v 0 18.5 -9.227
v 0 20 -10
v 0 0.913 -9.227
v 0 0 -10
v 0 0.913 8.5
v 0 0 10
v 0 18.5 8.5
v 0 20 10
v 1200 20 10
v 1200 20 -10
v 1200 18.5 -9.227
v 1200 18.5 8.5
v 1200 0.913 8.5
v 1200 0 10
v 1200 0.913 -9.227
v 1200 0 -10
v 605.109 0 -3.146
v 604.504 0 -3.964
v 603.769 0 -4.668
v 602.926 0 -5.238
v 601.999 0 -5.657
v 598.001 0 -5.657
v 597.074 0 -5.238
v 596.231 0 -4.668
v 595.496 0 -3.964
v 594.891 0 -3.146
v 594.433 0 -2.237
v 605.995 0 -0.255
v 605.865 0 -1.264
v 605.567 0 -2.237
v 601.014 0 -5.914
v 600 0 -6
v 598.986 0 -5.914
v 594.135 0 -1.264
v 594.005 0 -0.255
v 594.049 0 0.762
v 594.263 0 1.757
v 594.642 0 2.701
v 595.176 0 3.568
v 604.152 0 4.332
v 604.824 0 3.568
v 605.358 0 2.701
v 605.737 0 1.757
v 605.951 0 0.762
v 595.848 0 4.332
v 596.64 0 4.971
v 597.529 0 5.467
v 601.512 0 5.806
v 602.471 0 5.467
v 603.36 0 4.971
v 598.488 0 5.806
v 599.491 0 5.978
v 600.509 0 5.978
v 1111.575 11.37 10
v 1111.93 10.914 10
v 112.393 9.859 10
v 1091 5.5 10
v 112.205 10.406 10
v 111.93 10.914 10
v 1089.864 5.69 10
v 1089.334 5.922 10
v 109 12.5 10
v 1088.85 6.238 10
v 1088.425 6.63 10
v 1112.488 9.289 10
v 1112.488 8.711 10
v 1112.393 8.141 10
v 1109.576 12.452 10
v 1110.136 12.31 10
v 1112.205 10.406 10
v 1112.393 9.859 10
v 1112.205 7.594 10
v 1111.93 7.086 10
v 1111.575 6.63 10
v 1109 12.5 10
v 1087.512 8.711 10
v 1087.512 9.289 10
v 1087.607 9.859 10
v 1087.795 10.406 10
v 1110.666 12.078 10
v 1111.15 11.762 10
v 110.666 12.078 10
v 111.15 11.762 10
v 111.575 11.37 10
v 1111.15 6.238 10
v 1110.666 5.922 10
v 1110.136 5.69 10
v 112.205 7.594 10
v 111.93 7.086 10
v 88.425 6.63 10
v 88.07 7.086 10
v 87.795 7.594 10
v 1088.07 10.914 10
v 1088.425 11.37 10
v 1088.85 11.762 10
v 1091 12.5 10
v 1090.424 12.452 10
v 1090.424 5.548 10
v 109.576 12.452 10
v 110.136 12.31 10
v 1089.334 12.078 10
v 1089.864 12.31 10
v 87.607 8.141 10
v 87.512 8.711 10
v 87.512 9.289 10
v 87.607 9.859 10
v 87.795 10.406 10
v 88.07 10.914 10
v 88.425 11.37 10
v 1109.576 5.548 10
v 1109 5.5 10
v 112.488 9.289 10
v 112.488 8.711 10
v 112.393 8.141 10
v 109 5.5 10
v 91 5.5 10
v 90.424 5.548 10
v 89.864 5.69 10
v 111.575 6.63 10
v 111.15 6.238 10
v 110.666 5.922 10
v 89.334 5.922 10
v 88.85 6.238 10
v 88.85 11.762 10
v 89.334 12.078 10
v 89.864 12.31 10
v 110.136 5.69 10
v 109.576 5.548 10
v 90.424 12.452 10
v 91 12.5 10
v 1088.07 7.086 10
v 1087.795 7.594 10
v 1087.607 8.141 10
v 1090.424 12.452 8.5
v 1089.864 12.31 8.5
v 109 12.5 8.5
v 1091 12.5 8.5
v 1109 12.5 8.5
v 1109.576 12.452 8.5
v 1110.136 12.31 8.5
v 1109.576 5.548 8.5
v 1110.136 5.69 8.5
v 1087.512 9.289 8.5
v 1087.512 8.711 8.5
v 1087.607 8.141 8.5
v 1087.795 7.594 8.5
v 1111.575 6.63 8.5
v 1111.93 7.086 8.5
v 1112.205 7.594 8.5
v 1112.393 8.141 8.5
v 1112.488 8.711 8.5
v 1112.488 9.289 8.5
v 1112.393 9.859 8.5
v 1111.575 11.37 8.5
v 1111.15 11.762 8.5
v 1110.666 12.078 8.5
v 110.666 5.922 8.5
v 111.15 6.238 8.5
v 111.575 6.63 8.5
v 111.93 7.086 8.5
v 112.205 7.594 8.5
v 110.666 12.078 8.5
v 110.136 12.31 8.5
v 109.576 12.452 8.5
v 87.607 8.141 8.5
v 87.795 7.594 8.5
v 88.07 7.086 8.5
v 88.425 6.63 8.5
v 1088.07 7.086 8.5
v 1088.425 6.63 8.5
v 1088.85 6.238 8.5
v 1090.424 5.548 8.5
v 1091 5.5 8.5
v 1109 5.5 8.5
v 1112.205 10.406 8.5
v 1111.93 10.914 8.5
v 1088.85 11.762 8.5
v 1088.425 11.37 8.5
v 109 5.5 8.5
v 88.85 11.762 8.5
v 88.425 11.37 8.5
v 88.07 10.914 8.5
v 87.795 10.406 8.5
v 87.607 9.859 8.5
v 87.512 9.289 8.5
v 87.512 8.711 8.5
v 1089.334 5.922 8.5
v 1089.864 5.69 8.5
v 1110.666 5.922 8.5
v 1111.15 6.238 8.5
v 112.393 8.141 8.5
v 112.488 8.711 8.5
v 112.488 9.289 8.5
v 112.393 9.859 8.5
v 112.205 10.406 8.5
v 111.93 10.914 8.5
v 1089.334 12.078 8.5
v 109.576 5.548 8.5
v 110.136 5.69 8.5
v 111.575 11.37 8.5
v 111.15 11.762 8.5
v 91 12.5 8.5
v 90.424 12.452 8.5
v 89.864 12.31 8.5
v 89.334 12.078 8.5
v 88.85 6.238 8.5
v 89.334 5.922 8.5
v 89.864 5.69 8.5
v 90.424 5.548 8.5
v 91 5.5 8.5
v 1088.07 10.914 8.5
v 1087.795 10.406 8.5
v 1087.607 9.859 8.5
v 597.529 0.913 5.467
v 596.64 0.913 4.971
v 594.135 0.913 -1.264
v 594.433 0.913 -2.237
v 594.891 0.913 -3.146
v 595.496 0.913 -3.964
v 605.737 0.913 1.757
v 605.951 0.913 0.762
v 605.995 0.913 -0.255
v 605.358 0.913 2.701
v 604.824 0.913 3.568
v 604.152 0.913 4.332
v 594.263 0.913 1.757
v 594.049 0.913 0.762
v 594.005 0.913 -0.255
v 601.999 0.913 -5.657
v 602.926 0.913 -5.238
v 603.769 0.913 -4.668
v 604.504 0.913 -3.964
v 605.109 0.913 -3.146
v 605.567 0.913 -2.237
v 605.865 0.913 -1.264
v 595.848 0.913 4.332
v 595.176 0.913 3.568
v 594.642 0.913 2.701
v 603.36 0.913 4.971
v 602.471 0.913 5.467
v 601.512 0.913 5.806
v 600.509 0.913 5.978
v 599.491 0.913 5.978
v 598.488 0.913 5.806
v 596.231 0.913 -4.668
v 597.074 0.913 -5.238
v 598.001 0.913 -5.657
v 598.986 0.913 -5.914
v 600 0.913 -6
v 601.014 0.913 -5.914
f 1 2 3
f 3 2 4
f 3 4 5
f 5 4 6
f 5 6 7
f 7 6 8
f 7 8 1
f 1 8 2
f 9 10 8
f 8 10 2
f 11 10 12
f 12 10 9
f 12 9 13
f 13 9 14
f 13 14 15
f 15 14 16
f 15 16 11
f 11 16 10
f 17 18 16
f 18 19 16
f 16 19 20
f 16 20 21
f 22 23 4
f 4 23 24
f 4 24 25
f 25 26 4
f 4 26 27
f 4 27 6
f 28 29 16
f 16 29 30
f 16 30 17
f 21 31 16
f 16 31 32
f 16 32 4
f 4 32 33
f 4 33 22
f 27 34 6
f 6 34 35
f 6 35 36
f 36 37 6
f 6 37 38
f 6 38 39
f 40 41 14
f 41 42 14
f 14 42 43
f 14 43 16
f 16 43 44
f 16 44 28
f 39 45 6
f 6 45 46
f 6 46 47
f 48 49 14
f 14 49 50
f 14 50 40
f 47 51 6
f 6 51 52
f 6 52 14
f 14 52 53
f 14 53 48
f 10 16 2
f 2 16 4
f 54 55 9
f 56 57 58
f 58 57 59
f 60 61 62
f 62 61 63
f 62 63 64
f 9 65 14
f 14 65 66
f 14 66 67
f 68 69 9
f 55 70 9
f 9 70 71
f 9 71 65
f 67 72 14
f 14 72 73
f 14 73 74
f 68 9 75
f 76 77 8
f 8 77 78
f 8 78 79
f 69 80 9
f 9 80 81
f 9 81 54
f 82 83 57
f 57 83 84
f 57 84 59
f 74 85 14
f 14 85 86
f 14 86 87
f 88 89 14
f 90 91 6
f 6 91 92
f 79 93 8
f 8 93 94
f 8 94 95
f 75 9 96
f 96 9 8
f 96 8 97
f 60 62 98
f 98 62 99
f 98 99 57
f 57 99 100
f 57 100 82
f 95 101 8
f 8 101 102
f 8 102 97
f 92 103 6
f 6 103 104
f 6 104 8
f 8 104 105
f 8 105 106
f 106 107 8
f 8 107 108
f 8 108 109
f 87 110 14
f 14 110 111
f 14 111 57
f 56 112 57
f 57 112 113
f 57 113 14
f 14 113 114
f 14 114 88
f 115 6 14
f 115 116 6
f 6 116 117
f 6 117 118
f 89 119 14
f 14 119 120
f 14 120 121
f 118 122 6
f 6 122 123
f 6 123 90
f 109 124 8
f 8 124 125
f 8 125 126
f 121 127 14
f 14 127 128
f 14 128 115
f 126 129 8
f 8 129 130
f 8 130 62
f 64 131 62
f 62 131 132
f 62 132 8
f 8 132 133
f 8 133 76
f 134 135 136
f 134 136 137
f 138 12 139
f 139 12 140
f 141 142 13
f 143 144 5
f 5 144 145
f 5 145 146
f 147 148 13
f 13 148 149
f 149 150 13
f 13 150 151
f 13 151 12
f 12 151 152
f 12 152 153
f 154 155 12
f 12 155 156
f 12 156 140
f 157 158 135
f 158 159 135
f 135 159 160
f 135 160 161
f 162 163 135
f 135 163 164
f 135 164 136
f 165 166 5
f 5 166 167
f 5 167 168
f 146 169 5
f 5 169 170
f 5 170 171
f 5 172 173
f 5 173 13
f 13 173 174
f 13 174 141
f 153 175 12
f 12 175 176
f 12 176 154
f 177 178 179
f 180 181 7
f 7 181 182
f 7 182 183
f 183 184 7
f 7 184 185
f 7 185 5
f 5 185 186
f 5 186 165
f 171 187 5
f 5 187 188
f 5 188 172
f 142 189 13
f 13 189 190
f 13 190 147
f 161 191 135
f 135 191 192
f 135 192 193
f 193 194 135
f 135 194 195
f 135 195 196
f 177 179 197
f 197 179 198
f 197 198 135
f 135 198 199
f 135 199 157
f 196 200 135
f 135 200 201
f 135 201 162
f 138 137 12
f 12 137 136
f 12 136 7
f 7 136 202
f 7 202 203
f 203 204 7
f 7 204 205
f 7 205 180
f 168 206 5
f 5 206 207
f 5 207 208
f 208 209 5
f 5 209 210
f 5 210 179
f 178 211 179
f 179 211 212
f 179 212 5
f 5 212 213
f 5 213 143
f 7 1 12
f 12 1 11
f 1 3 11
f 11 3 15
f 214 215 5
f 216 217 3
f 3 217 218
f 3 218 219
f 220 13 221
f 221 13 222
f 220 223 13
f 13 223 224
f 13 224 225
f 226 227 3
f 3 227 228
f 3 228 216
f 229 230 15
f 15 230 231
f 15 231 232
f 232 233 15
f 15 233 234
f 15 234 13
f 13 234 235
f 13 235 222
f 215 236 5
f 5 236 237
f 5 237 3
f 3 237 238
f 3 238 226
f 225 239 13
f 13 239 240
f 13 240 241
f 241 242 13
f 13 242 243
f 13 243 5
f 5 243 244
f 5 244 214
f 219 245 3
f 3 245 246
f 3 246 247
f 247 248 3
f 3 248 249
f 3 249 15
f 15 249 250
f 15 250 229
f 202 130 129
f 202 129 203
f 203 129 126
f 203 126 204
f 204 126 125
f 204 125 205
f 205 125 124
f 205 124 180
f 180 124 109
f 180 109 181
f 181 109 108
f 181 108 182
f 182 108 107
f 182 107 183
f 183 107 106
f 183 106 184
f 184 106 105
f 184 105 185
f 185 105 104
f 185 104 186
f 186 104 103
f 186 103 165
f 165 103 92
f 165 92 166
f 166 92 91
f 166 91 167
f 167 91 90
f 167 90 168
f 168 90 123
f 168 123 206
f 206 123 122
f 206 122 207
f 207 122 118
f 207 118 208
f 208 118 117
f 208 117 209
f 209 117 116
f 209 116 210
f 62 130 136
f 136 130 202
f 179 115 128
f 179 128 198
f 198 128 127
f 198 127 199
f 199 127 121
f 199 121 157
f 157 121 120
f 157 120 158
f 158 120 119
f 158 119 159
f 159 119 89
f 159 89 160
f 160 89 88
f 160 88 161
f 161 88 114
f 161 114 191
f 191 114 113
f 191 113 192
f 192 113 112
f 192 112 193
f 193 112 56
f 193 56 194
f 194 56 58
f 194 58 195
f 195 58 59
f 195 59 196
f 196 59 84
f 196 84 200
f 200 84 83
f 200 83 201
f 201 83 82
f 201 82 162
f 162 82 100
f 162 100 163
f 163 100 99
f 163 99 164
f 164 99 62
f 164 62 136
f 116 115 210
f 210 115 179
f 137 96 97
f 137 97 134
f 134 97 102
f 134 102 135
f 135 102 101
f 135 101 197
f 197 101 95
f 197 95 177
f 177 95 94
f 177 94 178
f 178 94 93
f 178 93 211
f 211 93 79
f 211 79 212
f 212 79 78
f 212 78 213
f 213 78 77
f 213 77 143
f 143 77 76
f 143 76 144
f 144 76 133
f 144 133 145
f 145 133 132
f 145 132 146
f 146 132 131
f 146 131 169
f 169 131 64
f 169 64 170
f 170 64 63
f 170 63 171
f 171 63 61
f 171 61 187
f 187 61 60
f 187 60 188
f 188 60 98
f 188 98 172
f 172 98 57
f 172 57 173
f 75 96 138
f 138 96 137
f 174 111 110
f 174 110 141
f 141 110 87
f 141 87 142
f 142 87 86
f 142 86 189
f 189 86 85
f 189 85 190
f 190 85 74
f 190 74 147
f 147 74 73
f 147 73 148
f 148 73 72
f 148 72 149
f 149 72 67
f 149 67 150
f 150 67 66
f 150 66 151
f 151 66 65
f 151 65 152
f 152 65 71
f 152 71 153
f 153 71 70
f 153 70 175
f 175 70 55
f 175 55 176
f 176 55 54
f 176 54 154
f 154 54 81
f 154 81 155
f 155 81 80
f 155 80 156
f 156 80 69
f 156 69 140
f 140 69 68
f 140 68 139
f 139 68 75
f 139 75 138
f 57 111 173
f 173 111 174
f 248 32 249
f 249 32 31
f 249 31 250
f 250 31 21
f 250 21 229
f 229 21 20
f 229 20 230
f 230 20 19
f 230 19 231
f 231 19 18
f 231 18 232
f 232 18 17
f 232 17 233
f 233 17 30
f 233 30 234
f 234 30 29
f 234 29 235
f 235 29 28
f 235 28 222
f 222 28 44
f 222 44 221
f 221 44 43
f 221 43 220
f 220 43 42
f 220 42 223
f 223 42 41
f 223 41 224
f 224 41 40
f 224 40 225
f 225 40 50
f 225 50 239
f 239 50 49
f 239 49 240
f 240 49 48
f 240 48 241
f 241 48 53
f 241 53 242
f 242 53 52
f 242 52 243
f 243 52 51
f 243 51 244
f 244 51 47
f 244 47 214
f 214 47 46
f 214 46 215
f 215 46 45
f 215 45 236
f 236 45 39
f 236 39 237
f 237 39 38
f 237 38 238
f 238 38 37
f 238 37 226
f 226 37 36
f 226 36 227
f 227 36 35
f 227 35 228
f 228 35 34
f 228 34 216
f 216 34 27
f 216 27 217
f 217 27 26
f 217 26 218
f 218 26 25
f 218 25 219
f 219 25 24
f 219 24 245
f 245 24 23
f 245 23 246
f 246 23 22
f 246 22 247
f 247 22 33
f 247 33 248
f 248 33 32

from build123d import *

# Parameters (mm, degrees)
EXTRUDE_1_DEPTH      = 10
EXTRUDE_1_DEPTH_BACK = 10
SKETCH_1_W           = 1200
SKETCH_1_H           = 20
SKETCH_2_W           = 17.726991081
SKETCH_2_H           = 17.586856765
CUT_EXTRUDE_1_DEPTH  = 1201.208315252
CUT_EXTRUDE_2_REACH  = 1202.333
CUT_EXTRUDE_3_REACH  = 1202.333
CUT_EXTRUDE_4_REACH  = 1202.208
SKETCH_5_R           = 6


with BuildPart() as part:
    # ｽｹｯﾁ1 → ﾎﾞｽ - 押し出し1 (new, two sides: drawn at the far end of the back side and taken through both)
    with BuildSketch(Plane.XY.offset(-EXTRUDE_1_DEPTH_BACK)):
        with Locations((600, 10)):
            Rectangle(SKETCH_1_W, SKETCH_1_H)
    extrude(amount=EXTRUDE_1_DEPTH + EXTRUDE_1_DEPTH_BACK)

    # ｽｹｯﾁ2 → ｶｯﾄ - 押し出し1 (cut, through all)
    with BuildSketch(Plane(origin=(1200, 0, 0), x_dir=(0, 0, -1), z_dir=(1, 0, 0))):
        with Locations((0.363495541, 9.706571617)):
            Rectangle(SKETCH_2_W, SKETCH_2_H)
    extrude(amount=-CUT_EXTRUDE_1_DEPTH, mode=Mode.SUBTRACT)

    # ｽｹｯﾁ3 → ｶｯﾄ - 押し出し2 (cut, up to next)
    with BuildSketch(Plane.XY.offset(10), mode=Mode.PRIVATE) as cut_extrude_2_sk1:
        with BuildLine():
            Line((91, 12.5), (109, 12.5))
            ThreePointArc((109, 12.5), (112.5, 9), (109, 5.5))
            Line((109, 5.5), (91, 5.5))
            ThreePointArc((91, 5.5), (87.5, 9), (91, 12.5))
        make_face()
    cut_extrude_2_tool1 = extrude(cut_extrude_2_sk1.sketch, amount=-CUT_EXTRUDE_2_REACH, mode=Mode.PRIVATE) & part.part
    add(cut_extrude_2_tool1.solids().sort_by_distance((100, 9, 10))[0], mode=Mode.SUBTRACT)

    # ｽｹｯﾁ4 → ｶｯﾄ - 押し出し3 (cut, up to next)
    with BuildSketch(Plane.XY.offset(10), mode=Mode.PRIVATE) as cut_extrude_3_sk1:
        with BuildLine():
            Line((1091, 12.5), (1109, 12.5))
            ThreePointArc((1109, 12.5), (1112.5, 9), (1109, 5.5))
            Line((1109, 5.5), (1091, 5.5))
            ThreePointArc((1091, 5.5), (1087.5, 9), (1091, 12.5))
        make_face()
    cut_extrude_3_tool1 = extrude(cut_extrude_3_sk1.sketch, amount=-CUT_EXTRUDE_3_REACH, mode=Mode.PRIVATE) & part.part
    add(cut_extrude_3_tool1.solids().sort_by_distance((1100, 9, 10))[0], mode=Mode.SUBTRACT)

    # ｽｹｯﾁ5 → ｶｯﾄ - 押し出し4 (cut, up to next)
    with BuildSketch(Plane.XZ, mode=Mode.PRIVATE) as cut_extrude_4_sk1:
        with Locations((600, 0)):
            Circle(SKETCH_5_R)
    cut_extrude_4_tool1 = extrude(cut_extrude_4_sk1.sketch, amount=-CUT_EXTRUDE_4_REACH, mode=Mode.PRIVATE) & part.part
    add(cut_extrude_4_tool1.solids().sort_by_distance((600, 0, 0))[0], mode=Mode.SUBTRACT)


solid = part.part
